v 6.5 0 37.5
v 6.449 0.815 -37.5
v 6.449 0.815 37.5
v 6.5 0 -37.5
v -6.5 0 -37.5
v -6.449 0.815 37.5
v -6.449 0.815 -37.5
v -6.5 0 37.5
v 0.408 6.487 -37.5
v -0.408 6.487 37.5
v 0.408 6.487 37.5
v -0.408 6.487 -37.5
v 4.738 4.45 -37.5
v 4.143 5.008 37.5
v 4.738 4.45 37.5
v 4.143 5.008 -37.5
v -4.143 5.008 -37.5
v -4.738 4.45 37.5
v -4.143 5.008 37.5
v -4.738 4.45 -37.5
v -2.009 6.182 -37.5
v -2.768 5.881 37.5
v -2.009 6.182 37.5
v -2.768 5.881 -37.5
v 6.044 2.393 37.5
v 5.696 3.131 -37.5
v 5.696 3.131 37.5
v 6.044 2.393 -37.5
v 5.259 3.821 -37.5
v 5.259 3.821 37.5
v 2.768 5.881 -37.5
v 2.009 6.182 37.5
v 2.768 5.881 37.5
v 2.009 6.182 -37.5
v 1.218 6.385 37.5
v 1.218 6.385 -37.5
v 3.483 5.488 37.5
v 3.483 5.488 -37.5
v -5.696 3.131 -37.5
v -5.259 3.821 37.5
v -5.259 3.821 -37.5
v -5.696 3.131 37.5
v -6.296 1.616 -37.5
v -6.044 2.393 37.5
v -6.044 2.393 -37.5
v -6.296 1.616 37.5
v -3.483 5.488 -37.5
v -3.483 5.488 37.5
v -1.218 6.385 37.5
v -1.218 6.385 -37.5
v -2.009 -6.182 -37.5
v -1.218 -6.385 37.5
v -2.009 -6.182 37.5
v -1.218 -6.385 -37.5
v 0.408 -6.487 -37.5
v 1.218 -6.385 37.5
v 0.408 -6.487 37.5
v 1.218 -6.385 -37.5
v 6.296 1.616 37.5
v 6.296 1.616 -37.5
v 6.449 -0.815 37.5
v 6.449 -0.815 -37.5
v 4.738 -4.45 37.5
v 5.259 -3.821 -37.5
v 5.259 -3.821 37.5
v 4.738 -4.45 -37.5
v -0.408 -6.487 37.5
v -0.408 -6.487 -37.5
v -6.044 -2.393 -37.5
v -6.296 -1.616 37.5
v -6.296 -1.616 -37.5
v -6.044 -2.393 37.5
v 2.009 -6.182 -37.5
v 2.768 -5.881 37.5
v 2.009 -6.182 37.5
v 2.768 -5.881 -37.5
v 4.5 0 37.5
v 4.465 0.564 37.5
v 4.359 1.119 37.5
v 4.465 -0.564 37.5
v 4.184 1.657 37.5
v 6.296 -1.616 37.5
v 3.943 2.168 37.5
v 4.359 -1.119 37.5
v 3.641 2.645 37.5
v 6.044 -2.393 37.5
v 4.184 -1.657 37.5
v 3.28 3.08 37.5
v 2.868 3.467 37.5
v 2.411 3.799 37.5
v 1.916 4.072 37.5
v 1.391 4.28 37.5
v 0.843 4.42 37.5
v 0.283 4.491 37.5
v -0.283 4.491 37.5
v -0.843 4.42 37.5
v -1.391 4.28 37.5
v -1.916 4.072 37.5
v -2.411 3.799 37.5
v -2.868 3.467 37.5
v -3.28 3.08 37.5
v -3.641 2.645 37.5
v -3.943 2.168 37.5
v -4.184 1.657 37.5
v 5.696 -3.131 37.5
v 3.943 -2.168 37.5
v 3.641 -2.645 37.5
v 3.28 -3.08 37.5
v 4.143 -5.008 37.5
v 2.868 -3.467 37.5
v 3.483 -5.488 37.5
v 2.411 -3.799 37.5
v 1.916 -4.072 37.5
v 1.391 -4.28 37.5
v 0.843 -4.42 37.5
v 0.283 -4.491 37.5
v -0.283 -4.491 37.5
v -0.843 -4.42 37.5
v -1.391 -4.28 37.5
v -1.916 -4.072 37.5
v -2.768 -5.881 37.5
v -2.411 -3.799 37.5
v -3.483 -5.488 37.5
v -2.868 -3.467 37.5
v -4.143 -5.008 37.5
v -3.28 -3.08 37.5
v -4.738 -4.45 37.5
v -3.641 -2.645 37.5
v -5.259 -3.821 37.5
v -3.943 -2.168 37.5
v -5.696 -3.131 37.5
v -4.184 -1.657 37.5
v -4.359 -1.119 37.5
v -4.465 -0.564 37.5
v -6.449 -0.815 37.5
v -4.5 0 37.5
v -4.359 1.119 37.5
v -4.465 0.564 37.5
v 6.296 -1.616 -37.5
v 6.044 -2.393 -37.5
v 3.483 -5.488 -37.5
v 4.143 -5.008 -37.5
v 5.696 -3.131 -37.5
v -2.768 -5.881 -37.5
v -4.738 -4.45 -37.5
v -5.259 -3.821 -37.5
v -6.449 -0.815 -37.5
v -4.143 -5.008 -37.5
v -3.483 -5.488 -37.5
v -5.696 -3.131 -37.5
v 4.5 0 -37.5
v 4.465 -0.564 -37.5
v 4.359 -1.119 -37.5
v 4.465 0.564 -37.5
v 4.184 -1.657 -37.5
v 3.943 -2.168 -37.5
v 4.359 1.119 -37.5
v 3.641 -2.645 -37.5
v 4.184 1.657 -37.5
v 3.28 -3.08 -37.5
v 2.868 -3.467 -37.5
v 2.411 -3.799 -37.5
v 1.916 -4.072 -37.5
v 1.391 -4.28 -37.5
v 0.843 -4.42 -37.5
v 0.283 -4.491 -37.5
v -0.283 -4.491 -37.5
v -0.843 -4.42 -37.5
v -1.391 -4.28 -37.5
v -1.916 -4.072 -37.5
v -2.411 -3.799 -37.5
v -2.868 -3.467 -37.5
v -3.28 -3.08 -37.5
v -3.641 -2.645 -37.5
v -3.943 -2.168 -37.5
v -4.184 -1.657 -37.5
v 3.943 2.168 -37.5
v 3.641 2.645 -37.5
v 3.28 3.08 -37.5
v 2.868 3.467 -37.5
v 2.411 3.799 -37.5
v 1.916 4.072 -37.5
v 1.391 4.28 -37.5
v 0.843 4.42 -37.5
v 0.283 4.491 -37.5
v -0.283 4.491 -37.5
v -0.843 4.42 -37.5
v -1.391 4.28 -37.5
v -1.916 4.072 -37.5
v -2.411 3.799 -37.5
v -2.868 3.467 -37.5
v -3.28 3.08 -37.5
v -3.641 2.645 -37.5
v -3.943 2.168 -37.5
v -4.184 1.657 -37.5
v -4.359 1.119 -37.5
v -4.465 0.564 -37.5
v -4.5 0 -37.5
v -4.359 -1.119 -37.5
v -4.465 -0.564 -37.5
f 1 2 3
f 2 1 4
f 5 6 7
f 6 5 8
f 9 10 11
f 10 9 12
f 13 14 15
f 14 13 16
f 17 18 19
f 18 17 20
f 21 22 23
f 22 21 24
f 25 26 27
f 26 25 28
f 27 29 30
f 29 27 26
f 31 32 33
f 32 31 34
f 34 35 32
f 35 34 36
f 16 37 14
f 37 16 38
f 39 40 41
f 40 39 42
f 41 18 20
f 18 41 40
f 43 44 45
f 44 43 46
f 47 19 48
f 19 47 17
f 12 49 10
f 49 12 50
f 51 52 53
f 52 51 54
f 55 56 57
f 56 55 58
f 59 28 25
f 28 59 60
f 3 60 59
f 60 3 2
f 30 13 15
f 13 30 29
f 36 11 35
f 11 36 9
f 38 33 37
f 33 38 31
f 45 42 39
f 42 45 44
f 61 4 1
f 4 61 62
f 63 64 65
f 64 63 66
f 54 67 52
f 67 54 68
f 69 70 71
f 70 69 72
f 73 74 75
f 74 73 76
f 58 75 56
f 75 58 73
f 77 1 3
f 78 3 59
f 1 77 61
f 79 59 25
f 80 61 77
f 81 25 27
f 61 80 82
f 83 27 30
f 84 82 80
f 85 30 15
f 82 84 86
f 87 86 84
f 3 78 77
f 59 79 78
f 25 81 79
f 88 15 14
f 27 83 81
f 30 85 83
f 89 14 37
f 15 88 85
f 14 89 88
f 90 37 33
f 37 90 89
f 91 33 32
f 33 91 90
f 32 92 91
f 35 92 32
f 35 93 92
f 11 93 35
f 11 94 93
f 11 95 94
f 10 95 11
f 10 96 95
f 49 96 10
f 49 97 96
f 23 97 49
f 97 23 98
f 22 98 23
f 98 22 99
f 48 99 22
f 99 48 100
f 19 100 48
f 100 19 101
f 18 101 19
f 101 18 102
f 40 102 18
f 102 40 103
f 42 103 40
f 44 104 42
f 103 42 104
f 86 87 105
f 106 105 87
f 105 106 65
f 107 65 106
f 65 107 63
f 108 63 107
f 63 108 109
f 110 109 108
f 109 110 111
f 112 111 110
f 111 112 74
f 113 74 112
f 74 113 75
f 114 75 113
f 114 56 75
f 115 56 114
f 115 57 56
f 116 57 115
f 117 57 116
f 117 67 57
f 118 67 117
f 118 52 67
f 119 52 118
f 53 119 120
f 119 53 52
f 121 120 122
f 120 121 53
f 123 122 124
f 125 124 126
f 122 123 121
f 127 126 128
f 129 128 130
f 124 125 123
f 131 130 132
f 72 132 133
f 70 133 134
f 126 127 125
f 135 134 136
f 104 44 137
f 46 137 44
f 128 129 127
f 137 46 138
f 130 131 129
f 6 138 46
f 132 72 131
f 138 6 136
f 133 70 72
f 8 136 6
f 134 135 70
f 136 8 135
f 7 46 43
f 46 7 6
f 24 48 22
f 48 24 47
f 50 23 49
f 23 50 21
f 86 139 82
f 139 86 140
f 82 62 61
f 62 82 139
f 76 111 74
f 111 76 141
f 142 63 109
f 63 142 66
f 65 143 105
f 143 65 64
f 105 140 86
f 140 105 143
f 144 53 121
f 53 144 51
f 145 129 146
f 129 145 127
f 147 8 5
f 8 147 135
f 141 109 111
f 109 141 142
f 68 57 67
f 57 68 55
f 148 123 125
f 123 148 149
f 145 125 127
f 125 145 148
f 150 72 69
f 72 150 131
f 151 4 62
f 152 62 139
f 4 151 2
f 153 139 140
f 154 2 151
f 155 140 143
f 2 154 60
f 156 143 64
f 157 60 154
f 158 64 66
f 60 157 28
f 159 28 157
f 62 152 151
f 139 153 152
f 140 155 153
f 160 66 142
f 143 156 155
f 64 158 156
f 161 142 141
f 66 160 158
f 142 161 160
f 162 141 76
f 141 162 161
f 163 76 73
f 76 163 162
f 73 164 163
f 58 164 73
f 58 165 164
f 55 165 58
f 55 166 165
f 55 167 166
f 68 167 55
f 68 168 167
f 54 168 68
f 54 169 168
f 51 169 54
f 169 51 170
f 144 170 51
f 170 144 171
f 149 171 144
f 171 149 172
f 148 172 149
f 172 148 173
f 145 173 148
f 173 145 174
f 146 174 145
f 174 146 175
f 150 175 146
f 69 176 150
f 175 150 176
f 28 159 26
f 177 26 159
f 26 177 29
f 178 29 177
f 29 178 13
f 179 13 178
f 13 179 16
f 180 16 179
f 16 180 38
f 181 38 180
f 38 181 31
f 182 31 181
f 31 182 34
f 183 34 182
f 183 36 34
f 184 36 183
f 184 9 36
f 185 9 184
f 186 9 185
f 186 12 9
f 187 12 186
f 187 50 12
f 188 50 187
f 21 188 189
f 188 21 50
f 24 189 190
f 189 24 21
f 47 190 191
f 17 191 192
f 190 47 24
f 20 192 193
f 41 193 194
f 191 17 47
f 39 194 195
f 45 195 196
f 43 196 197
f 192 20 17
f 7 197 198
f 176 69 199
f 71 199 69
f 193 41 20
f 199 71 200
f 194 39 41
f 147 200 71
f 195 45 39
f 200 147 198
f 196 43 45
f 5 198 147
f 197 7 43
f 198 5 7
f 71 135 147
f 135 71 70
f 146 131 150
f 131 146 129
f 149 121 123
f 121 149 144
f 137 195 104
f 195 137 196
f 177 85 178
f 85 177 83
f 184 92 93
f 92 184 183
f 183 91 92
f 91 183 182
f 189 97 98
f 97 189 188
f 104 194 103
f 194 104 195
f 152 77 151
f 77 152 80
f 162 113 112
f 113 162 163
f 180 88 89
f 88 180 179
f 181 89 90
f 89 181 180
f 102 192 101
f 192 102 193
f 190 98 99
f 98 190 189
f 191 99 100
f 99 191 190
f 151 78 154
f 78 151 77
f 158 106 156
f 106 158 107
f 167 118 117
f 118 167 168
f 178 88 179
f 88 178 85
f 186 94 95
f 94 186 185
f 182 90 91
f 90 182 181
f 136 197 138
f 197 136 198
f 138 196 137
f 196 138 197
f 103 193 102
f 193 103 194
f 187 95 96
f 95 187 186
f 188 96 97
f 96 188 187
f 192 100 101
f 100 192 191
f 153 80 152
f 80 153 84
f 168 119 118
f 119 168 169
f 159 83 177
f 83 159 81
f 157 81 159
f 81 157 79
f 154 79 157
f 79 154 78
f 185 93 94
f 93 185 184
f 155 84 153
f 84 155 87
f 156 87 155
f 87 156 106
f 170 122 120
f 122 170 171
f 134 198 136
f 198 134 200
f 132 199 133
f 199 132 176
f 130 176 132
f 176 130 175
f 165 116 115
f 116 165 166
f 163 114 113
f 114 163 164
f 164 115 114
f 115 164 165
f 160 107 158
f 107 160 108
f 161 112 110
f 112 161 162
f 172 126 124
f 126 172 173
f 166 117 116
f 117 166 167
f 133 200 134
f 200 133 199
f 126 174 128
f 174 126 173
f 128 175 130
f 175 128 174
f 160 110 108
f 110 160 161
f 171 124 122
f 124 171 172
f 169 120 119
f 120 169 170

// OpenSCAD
$fn = 50;


difference() {
	union() {
		translate(v = [0, 0, -37.5000000000]) {
			cylinder(h = 75, r = 6.5000000000);
		}
	}
	union() {
		translate(v = [0, 0, -100.0000000000]) {
			cylinder(h = 200, r = 4.5000000000);
		}
	}
}
